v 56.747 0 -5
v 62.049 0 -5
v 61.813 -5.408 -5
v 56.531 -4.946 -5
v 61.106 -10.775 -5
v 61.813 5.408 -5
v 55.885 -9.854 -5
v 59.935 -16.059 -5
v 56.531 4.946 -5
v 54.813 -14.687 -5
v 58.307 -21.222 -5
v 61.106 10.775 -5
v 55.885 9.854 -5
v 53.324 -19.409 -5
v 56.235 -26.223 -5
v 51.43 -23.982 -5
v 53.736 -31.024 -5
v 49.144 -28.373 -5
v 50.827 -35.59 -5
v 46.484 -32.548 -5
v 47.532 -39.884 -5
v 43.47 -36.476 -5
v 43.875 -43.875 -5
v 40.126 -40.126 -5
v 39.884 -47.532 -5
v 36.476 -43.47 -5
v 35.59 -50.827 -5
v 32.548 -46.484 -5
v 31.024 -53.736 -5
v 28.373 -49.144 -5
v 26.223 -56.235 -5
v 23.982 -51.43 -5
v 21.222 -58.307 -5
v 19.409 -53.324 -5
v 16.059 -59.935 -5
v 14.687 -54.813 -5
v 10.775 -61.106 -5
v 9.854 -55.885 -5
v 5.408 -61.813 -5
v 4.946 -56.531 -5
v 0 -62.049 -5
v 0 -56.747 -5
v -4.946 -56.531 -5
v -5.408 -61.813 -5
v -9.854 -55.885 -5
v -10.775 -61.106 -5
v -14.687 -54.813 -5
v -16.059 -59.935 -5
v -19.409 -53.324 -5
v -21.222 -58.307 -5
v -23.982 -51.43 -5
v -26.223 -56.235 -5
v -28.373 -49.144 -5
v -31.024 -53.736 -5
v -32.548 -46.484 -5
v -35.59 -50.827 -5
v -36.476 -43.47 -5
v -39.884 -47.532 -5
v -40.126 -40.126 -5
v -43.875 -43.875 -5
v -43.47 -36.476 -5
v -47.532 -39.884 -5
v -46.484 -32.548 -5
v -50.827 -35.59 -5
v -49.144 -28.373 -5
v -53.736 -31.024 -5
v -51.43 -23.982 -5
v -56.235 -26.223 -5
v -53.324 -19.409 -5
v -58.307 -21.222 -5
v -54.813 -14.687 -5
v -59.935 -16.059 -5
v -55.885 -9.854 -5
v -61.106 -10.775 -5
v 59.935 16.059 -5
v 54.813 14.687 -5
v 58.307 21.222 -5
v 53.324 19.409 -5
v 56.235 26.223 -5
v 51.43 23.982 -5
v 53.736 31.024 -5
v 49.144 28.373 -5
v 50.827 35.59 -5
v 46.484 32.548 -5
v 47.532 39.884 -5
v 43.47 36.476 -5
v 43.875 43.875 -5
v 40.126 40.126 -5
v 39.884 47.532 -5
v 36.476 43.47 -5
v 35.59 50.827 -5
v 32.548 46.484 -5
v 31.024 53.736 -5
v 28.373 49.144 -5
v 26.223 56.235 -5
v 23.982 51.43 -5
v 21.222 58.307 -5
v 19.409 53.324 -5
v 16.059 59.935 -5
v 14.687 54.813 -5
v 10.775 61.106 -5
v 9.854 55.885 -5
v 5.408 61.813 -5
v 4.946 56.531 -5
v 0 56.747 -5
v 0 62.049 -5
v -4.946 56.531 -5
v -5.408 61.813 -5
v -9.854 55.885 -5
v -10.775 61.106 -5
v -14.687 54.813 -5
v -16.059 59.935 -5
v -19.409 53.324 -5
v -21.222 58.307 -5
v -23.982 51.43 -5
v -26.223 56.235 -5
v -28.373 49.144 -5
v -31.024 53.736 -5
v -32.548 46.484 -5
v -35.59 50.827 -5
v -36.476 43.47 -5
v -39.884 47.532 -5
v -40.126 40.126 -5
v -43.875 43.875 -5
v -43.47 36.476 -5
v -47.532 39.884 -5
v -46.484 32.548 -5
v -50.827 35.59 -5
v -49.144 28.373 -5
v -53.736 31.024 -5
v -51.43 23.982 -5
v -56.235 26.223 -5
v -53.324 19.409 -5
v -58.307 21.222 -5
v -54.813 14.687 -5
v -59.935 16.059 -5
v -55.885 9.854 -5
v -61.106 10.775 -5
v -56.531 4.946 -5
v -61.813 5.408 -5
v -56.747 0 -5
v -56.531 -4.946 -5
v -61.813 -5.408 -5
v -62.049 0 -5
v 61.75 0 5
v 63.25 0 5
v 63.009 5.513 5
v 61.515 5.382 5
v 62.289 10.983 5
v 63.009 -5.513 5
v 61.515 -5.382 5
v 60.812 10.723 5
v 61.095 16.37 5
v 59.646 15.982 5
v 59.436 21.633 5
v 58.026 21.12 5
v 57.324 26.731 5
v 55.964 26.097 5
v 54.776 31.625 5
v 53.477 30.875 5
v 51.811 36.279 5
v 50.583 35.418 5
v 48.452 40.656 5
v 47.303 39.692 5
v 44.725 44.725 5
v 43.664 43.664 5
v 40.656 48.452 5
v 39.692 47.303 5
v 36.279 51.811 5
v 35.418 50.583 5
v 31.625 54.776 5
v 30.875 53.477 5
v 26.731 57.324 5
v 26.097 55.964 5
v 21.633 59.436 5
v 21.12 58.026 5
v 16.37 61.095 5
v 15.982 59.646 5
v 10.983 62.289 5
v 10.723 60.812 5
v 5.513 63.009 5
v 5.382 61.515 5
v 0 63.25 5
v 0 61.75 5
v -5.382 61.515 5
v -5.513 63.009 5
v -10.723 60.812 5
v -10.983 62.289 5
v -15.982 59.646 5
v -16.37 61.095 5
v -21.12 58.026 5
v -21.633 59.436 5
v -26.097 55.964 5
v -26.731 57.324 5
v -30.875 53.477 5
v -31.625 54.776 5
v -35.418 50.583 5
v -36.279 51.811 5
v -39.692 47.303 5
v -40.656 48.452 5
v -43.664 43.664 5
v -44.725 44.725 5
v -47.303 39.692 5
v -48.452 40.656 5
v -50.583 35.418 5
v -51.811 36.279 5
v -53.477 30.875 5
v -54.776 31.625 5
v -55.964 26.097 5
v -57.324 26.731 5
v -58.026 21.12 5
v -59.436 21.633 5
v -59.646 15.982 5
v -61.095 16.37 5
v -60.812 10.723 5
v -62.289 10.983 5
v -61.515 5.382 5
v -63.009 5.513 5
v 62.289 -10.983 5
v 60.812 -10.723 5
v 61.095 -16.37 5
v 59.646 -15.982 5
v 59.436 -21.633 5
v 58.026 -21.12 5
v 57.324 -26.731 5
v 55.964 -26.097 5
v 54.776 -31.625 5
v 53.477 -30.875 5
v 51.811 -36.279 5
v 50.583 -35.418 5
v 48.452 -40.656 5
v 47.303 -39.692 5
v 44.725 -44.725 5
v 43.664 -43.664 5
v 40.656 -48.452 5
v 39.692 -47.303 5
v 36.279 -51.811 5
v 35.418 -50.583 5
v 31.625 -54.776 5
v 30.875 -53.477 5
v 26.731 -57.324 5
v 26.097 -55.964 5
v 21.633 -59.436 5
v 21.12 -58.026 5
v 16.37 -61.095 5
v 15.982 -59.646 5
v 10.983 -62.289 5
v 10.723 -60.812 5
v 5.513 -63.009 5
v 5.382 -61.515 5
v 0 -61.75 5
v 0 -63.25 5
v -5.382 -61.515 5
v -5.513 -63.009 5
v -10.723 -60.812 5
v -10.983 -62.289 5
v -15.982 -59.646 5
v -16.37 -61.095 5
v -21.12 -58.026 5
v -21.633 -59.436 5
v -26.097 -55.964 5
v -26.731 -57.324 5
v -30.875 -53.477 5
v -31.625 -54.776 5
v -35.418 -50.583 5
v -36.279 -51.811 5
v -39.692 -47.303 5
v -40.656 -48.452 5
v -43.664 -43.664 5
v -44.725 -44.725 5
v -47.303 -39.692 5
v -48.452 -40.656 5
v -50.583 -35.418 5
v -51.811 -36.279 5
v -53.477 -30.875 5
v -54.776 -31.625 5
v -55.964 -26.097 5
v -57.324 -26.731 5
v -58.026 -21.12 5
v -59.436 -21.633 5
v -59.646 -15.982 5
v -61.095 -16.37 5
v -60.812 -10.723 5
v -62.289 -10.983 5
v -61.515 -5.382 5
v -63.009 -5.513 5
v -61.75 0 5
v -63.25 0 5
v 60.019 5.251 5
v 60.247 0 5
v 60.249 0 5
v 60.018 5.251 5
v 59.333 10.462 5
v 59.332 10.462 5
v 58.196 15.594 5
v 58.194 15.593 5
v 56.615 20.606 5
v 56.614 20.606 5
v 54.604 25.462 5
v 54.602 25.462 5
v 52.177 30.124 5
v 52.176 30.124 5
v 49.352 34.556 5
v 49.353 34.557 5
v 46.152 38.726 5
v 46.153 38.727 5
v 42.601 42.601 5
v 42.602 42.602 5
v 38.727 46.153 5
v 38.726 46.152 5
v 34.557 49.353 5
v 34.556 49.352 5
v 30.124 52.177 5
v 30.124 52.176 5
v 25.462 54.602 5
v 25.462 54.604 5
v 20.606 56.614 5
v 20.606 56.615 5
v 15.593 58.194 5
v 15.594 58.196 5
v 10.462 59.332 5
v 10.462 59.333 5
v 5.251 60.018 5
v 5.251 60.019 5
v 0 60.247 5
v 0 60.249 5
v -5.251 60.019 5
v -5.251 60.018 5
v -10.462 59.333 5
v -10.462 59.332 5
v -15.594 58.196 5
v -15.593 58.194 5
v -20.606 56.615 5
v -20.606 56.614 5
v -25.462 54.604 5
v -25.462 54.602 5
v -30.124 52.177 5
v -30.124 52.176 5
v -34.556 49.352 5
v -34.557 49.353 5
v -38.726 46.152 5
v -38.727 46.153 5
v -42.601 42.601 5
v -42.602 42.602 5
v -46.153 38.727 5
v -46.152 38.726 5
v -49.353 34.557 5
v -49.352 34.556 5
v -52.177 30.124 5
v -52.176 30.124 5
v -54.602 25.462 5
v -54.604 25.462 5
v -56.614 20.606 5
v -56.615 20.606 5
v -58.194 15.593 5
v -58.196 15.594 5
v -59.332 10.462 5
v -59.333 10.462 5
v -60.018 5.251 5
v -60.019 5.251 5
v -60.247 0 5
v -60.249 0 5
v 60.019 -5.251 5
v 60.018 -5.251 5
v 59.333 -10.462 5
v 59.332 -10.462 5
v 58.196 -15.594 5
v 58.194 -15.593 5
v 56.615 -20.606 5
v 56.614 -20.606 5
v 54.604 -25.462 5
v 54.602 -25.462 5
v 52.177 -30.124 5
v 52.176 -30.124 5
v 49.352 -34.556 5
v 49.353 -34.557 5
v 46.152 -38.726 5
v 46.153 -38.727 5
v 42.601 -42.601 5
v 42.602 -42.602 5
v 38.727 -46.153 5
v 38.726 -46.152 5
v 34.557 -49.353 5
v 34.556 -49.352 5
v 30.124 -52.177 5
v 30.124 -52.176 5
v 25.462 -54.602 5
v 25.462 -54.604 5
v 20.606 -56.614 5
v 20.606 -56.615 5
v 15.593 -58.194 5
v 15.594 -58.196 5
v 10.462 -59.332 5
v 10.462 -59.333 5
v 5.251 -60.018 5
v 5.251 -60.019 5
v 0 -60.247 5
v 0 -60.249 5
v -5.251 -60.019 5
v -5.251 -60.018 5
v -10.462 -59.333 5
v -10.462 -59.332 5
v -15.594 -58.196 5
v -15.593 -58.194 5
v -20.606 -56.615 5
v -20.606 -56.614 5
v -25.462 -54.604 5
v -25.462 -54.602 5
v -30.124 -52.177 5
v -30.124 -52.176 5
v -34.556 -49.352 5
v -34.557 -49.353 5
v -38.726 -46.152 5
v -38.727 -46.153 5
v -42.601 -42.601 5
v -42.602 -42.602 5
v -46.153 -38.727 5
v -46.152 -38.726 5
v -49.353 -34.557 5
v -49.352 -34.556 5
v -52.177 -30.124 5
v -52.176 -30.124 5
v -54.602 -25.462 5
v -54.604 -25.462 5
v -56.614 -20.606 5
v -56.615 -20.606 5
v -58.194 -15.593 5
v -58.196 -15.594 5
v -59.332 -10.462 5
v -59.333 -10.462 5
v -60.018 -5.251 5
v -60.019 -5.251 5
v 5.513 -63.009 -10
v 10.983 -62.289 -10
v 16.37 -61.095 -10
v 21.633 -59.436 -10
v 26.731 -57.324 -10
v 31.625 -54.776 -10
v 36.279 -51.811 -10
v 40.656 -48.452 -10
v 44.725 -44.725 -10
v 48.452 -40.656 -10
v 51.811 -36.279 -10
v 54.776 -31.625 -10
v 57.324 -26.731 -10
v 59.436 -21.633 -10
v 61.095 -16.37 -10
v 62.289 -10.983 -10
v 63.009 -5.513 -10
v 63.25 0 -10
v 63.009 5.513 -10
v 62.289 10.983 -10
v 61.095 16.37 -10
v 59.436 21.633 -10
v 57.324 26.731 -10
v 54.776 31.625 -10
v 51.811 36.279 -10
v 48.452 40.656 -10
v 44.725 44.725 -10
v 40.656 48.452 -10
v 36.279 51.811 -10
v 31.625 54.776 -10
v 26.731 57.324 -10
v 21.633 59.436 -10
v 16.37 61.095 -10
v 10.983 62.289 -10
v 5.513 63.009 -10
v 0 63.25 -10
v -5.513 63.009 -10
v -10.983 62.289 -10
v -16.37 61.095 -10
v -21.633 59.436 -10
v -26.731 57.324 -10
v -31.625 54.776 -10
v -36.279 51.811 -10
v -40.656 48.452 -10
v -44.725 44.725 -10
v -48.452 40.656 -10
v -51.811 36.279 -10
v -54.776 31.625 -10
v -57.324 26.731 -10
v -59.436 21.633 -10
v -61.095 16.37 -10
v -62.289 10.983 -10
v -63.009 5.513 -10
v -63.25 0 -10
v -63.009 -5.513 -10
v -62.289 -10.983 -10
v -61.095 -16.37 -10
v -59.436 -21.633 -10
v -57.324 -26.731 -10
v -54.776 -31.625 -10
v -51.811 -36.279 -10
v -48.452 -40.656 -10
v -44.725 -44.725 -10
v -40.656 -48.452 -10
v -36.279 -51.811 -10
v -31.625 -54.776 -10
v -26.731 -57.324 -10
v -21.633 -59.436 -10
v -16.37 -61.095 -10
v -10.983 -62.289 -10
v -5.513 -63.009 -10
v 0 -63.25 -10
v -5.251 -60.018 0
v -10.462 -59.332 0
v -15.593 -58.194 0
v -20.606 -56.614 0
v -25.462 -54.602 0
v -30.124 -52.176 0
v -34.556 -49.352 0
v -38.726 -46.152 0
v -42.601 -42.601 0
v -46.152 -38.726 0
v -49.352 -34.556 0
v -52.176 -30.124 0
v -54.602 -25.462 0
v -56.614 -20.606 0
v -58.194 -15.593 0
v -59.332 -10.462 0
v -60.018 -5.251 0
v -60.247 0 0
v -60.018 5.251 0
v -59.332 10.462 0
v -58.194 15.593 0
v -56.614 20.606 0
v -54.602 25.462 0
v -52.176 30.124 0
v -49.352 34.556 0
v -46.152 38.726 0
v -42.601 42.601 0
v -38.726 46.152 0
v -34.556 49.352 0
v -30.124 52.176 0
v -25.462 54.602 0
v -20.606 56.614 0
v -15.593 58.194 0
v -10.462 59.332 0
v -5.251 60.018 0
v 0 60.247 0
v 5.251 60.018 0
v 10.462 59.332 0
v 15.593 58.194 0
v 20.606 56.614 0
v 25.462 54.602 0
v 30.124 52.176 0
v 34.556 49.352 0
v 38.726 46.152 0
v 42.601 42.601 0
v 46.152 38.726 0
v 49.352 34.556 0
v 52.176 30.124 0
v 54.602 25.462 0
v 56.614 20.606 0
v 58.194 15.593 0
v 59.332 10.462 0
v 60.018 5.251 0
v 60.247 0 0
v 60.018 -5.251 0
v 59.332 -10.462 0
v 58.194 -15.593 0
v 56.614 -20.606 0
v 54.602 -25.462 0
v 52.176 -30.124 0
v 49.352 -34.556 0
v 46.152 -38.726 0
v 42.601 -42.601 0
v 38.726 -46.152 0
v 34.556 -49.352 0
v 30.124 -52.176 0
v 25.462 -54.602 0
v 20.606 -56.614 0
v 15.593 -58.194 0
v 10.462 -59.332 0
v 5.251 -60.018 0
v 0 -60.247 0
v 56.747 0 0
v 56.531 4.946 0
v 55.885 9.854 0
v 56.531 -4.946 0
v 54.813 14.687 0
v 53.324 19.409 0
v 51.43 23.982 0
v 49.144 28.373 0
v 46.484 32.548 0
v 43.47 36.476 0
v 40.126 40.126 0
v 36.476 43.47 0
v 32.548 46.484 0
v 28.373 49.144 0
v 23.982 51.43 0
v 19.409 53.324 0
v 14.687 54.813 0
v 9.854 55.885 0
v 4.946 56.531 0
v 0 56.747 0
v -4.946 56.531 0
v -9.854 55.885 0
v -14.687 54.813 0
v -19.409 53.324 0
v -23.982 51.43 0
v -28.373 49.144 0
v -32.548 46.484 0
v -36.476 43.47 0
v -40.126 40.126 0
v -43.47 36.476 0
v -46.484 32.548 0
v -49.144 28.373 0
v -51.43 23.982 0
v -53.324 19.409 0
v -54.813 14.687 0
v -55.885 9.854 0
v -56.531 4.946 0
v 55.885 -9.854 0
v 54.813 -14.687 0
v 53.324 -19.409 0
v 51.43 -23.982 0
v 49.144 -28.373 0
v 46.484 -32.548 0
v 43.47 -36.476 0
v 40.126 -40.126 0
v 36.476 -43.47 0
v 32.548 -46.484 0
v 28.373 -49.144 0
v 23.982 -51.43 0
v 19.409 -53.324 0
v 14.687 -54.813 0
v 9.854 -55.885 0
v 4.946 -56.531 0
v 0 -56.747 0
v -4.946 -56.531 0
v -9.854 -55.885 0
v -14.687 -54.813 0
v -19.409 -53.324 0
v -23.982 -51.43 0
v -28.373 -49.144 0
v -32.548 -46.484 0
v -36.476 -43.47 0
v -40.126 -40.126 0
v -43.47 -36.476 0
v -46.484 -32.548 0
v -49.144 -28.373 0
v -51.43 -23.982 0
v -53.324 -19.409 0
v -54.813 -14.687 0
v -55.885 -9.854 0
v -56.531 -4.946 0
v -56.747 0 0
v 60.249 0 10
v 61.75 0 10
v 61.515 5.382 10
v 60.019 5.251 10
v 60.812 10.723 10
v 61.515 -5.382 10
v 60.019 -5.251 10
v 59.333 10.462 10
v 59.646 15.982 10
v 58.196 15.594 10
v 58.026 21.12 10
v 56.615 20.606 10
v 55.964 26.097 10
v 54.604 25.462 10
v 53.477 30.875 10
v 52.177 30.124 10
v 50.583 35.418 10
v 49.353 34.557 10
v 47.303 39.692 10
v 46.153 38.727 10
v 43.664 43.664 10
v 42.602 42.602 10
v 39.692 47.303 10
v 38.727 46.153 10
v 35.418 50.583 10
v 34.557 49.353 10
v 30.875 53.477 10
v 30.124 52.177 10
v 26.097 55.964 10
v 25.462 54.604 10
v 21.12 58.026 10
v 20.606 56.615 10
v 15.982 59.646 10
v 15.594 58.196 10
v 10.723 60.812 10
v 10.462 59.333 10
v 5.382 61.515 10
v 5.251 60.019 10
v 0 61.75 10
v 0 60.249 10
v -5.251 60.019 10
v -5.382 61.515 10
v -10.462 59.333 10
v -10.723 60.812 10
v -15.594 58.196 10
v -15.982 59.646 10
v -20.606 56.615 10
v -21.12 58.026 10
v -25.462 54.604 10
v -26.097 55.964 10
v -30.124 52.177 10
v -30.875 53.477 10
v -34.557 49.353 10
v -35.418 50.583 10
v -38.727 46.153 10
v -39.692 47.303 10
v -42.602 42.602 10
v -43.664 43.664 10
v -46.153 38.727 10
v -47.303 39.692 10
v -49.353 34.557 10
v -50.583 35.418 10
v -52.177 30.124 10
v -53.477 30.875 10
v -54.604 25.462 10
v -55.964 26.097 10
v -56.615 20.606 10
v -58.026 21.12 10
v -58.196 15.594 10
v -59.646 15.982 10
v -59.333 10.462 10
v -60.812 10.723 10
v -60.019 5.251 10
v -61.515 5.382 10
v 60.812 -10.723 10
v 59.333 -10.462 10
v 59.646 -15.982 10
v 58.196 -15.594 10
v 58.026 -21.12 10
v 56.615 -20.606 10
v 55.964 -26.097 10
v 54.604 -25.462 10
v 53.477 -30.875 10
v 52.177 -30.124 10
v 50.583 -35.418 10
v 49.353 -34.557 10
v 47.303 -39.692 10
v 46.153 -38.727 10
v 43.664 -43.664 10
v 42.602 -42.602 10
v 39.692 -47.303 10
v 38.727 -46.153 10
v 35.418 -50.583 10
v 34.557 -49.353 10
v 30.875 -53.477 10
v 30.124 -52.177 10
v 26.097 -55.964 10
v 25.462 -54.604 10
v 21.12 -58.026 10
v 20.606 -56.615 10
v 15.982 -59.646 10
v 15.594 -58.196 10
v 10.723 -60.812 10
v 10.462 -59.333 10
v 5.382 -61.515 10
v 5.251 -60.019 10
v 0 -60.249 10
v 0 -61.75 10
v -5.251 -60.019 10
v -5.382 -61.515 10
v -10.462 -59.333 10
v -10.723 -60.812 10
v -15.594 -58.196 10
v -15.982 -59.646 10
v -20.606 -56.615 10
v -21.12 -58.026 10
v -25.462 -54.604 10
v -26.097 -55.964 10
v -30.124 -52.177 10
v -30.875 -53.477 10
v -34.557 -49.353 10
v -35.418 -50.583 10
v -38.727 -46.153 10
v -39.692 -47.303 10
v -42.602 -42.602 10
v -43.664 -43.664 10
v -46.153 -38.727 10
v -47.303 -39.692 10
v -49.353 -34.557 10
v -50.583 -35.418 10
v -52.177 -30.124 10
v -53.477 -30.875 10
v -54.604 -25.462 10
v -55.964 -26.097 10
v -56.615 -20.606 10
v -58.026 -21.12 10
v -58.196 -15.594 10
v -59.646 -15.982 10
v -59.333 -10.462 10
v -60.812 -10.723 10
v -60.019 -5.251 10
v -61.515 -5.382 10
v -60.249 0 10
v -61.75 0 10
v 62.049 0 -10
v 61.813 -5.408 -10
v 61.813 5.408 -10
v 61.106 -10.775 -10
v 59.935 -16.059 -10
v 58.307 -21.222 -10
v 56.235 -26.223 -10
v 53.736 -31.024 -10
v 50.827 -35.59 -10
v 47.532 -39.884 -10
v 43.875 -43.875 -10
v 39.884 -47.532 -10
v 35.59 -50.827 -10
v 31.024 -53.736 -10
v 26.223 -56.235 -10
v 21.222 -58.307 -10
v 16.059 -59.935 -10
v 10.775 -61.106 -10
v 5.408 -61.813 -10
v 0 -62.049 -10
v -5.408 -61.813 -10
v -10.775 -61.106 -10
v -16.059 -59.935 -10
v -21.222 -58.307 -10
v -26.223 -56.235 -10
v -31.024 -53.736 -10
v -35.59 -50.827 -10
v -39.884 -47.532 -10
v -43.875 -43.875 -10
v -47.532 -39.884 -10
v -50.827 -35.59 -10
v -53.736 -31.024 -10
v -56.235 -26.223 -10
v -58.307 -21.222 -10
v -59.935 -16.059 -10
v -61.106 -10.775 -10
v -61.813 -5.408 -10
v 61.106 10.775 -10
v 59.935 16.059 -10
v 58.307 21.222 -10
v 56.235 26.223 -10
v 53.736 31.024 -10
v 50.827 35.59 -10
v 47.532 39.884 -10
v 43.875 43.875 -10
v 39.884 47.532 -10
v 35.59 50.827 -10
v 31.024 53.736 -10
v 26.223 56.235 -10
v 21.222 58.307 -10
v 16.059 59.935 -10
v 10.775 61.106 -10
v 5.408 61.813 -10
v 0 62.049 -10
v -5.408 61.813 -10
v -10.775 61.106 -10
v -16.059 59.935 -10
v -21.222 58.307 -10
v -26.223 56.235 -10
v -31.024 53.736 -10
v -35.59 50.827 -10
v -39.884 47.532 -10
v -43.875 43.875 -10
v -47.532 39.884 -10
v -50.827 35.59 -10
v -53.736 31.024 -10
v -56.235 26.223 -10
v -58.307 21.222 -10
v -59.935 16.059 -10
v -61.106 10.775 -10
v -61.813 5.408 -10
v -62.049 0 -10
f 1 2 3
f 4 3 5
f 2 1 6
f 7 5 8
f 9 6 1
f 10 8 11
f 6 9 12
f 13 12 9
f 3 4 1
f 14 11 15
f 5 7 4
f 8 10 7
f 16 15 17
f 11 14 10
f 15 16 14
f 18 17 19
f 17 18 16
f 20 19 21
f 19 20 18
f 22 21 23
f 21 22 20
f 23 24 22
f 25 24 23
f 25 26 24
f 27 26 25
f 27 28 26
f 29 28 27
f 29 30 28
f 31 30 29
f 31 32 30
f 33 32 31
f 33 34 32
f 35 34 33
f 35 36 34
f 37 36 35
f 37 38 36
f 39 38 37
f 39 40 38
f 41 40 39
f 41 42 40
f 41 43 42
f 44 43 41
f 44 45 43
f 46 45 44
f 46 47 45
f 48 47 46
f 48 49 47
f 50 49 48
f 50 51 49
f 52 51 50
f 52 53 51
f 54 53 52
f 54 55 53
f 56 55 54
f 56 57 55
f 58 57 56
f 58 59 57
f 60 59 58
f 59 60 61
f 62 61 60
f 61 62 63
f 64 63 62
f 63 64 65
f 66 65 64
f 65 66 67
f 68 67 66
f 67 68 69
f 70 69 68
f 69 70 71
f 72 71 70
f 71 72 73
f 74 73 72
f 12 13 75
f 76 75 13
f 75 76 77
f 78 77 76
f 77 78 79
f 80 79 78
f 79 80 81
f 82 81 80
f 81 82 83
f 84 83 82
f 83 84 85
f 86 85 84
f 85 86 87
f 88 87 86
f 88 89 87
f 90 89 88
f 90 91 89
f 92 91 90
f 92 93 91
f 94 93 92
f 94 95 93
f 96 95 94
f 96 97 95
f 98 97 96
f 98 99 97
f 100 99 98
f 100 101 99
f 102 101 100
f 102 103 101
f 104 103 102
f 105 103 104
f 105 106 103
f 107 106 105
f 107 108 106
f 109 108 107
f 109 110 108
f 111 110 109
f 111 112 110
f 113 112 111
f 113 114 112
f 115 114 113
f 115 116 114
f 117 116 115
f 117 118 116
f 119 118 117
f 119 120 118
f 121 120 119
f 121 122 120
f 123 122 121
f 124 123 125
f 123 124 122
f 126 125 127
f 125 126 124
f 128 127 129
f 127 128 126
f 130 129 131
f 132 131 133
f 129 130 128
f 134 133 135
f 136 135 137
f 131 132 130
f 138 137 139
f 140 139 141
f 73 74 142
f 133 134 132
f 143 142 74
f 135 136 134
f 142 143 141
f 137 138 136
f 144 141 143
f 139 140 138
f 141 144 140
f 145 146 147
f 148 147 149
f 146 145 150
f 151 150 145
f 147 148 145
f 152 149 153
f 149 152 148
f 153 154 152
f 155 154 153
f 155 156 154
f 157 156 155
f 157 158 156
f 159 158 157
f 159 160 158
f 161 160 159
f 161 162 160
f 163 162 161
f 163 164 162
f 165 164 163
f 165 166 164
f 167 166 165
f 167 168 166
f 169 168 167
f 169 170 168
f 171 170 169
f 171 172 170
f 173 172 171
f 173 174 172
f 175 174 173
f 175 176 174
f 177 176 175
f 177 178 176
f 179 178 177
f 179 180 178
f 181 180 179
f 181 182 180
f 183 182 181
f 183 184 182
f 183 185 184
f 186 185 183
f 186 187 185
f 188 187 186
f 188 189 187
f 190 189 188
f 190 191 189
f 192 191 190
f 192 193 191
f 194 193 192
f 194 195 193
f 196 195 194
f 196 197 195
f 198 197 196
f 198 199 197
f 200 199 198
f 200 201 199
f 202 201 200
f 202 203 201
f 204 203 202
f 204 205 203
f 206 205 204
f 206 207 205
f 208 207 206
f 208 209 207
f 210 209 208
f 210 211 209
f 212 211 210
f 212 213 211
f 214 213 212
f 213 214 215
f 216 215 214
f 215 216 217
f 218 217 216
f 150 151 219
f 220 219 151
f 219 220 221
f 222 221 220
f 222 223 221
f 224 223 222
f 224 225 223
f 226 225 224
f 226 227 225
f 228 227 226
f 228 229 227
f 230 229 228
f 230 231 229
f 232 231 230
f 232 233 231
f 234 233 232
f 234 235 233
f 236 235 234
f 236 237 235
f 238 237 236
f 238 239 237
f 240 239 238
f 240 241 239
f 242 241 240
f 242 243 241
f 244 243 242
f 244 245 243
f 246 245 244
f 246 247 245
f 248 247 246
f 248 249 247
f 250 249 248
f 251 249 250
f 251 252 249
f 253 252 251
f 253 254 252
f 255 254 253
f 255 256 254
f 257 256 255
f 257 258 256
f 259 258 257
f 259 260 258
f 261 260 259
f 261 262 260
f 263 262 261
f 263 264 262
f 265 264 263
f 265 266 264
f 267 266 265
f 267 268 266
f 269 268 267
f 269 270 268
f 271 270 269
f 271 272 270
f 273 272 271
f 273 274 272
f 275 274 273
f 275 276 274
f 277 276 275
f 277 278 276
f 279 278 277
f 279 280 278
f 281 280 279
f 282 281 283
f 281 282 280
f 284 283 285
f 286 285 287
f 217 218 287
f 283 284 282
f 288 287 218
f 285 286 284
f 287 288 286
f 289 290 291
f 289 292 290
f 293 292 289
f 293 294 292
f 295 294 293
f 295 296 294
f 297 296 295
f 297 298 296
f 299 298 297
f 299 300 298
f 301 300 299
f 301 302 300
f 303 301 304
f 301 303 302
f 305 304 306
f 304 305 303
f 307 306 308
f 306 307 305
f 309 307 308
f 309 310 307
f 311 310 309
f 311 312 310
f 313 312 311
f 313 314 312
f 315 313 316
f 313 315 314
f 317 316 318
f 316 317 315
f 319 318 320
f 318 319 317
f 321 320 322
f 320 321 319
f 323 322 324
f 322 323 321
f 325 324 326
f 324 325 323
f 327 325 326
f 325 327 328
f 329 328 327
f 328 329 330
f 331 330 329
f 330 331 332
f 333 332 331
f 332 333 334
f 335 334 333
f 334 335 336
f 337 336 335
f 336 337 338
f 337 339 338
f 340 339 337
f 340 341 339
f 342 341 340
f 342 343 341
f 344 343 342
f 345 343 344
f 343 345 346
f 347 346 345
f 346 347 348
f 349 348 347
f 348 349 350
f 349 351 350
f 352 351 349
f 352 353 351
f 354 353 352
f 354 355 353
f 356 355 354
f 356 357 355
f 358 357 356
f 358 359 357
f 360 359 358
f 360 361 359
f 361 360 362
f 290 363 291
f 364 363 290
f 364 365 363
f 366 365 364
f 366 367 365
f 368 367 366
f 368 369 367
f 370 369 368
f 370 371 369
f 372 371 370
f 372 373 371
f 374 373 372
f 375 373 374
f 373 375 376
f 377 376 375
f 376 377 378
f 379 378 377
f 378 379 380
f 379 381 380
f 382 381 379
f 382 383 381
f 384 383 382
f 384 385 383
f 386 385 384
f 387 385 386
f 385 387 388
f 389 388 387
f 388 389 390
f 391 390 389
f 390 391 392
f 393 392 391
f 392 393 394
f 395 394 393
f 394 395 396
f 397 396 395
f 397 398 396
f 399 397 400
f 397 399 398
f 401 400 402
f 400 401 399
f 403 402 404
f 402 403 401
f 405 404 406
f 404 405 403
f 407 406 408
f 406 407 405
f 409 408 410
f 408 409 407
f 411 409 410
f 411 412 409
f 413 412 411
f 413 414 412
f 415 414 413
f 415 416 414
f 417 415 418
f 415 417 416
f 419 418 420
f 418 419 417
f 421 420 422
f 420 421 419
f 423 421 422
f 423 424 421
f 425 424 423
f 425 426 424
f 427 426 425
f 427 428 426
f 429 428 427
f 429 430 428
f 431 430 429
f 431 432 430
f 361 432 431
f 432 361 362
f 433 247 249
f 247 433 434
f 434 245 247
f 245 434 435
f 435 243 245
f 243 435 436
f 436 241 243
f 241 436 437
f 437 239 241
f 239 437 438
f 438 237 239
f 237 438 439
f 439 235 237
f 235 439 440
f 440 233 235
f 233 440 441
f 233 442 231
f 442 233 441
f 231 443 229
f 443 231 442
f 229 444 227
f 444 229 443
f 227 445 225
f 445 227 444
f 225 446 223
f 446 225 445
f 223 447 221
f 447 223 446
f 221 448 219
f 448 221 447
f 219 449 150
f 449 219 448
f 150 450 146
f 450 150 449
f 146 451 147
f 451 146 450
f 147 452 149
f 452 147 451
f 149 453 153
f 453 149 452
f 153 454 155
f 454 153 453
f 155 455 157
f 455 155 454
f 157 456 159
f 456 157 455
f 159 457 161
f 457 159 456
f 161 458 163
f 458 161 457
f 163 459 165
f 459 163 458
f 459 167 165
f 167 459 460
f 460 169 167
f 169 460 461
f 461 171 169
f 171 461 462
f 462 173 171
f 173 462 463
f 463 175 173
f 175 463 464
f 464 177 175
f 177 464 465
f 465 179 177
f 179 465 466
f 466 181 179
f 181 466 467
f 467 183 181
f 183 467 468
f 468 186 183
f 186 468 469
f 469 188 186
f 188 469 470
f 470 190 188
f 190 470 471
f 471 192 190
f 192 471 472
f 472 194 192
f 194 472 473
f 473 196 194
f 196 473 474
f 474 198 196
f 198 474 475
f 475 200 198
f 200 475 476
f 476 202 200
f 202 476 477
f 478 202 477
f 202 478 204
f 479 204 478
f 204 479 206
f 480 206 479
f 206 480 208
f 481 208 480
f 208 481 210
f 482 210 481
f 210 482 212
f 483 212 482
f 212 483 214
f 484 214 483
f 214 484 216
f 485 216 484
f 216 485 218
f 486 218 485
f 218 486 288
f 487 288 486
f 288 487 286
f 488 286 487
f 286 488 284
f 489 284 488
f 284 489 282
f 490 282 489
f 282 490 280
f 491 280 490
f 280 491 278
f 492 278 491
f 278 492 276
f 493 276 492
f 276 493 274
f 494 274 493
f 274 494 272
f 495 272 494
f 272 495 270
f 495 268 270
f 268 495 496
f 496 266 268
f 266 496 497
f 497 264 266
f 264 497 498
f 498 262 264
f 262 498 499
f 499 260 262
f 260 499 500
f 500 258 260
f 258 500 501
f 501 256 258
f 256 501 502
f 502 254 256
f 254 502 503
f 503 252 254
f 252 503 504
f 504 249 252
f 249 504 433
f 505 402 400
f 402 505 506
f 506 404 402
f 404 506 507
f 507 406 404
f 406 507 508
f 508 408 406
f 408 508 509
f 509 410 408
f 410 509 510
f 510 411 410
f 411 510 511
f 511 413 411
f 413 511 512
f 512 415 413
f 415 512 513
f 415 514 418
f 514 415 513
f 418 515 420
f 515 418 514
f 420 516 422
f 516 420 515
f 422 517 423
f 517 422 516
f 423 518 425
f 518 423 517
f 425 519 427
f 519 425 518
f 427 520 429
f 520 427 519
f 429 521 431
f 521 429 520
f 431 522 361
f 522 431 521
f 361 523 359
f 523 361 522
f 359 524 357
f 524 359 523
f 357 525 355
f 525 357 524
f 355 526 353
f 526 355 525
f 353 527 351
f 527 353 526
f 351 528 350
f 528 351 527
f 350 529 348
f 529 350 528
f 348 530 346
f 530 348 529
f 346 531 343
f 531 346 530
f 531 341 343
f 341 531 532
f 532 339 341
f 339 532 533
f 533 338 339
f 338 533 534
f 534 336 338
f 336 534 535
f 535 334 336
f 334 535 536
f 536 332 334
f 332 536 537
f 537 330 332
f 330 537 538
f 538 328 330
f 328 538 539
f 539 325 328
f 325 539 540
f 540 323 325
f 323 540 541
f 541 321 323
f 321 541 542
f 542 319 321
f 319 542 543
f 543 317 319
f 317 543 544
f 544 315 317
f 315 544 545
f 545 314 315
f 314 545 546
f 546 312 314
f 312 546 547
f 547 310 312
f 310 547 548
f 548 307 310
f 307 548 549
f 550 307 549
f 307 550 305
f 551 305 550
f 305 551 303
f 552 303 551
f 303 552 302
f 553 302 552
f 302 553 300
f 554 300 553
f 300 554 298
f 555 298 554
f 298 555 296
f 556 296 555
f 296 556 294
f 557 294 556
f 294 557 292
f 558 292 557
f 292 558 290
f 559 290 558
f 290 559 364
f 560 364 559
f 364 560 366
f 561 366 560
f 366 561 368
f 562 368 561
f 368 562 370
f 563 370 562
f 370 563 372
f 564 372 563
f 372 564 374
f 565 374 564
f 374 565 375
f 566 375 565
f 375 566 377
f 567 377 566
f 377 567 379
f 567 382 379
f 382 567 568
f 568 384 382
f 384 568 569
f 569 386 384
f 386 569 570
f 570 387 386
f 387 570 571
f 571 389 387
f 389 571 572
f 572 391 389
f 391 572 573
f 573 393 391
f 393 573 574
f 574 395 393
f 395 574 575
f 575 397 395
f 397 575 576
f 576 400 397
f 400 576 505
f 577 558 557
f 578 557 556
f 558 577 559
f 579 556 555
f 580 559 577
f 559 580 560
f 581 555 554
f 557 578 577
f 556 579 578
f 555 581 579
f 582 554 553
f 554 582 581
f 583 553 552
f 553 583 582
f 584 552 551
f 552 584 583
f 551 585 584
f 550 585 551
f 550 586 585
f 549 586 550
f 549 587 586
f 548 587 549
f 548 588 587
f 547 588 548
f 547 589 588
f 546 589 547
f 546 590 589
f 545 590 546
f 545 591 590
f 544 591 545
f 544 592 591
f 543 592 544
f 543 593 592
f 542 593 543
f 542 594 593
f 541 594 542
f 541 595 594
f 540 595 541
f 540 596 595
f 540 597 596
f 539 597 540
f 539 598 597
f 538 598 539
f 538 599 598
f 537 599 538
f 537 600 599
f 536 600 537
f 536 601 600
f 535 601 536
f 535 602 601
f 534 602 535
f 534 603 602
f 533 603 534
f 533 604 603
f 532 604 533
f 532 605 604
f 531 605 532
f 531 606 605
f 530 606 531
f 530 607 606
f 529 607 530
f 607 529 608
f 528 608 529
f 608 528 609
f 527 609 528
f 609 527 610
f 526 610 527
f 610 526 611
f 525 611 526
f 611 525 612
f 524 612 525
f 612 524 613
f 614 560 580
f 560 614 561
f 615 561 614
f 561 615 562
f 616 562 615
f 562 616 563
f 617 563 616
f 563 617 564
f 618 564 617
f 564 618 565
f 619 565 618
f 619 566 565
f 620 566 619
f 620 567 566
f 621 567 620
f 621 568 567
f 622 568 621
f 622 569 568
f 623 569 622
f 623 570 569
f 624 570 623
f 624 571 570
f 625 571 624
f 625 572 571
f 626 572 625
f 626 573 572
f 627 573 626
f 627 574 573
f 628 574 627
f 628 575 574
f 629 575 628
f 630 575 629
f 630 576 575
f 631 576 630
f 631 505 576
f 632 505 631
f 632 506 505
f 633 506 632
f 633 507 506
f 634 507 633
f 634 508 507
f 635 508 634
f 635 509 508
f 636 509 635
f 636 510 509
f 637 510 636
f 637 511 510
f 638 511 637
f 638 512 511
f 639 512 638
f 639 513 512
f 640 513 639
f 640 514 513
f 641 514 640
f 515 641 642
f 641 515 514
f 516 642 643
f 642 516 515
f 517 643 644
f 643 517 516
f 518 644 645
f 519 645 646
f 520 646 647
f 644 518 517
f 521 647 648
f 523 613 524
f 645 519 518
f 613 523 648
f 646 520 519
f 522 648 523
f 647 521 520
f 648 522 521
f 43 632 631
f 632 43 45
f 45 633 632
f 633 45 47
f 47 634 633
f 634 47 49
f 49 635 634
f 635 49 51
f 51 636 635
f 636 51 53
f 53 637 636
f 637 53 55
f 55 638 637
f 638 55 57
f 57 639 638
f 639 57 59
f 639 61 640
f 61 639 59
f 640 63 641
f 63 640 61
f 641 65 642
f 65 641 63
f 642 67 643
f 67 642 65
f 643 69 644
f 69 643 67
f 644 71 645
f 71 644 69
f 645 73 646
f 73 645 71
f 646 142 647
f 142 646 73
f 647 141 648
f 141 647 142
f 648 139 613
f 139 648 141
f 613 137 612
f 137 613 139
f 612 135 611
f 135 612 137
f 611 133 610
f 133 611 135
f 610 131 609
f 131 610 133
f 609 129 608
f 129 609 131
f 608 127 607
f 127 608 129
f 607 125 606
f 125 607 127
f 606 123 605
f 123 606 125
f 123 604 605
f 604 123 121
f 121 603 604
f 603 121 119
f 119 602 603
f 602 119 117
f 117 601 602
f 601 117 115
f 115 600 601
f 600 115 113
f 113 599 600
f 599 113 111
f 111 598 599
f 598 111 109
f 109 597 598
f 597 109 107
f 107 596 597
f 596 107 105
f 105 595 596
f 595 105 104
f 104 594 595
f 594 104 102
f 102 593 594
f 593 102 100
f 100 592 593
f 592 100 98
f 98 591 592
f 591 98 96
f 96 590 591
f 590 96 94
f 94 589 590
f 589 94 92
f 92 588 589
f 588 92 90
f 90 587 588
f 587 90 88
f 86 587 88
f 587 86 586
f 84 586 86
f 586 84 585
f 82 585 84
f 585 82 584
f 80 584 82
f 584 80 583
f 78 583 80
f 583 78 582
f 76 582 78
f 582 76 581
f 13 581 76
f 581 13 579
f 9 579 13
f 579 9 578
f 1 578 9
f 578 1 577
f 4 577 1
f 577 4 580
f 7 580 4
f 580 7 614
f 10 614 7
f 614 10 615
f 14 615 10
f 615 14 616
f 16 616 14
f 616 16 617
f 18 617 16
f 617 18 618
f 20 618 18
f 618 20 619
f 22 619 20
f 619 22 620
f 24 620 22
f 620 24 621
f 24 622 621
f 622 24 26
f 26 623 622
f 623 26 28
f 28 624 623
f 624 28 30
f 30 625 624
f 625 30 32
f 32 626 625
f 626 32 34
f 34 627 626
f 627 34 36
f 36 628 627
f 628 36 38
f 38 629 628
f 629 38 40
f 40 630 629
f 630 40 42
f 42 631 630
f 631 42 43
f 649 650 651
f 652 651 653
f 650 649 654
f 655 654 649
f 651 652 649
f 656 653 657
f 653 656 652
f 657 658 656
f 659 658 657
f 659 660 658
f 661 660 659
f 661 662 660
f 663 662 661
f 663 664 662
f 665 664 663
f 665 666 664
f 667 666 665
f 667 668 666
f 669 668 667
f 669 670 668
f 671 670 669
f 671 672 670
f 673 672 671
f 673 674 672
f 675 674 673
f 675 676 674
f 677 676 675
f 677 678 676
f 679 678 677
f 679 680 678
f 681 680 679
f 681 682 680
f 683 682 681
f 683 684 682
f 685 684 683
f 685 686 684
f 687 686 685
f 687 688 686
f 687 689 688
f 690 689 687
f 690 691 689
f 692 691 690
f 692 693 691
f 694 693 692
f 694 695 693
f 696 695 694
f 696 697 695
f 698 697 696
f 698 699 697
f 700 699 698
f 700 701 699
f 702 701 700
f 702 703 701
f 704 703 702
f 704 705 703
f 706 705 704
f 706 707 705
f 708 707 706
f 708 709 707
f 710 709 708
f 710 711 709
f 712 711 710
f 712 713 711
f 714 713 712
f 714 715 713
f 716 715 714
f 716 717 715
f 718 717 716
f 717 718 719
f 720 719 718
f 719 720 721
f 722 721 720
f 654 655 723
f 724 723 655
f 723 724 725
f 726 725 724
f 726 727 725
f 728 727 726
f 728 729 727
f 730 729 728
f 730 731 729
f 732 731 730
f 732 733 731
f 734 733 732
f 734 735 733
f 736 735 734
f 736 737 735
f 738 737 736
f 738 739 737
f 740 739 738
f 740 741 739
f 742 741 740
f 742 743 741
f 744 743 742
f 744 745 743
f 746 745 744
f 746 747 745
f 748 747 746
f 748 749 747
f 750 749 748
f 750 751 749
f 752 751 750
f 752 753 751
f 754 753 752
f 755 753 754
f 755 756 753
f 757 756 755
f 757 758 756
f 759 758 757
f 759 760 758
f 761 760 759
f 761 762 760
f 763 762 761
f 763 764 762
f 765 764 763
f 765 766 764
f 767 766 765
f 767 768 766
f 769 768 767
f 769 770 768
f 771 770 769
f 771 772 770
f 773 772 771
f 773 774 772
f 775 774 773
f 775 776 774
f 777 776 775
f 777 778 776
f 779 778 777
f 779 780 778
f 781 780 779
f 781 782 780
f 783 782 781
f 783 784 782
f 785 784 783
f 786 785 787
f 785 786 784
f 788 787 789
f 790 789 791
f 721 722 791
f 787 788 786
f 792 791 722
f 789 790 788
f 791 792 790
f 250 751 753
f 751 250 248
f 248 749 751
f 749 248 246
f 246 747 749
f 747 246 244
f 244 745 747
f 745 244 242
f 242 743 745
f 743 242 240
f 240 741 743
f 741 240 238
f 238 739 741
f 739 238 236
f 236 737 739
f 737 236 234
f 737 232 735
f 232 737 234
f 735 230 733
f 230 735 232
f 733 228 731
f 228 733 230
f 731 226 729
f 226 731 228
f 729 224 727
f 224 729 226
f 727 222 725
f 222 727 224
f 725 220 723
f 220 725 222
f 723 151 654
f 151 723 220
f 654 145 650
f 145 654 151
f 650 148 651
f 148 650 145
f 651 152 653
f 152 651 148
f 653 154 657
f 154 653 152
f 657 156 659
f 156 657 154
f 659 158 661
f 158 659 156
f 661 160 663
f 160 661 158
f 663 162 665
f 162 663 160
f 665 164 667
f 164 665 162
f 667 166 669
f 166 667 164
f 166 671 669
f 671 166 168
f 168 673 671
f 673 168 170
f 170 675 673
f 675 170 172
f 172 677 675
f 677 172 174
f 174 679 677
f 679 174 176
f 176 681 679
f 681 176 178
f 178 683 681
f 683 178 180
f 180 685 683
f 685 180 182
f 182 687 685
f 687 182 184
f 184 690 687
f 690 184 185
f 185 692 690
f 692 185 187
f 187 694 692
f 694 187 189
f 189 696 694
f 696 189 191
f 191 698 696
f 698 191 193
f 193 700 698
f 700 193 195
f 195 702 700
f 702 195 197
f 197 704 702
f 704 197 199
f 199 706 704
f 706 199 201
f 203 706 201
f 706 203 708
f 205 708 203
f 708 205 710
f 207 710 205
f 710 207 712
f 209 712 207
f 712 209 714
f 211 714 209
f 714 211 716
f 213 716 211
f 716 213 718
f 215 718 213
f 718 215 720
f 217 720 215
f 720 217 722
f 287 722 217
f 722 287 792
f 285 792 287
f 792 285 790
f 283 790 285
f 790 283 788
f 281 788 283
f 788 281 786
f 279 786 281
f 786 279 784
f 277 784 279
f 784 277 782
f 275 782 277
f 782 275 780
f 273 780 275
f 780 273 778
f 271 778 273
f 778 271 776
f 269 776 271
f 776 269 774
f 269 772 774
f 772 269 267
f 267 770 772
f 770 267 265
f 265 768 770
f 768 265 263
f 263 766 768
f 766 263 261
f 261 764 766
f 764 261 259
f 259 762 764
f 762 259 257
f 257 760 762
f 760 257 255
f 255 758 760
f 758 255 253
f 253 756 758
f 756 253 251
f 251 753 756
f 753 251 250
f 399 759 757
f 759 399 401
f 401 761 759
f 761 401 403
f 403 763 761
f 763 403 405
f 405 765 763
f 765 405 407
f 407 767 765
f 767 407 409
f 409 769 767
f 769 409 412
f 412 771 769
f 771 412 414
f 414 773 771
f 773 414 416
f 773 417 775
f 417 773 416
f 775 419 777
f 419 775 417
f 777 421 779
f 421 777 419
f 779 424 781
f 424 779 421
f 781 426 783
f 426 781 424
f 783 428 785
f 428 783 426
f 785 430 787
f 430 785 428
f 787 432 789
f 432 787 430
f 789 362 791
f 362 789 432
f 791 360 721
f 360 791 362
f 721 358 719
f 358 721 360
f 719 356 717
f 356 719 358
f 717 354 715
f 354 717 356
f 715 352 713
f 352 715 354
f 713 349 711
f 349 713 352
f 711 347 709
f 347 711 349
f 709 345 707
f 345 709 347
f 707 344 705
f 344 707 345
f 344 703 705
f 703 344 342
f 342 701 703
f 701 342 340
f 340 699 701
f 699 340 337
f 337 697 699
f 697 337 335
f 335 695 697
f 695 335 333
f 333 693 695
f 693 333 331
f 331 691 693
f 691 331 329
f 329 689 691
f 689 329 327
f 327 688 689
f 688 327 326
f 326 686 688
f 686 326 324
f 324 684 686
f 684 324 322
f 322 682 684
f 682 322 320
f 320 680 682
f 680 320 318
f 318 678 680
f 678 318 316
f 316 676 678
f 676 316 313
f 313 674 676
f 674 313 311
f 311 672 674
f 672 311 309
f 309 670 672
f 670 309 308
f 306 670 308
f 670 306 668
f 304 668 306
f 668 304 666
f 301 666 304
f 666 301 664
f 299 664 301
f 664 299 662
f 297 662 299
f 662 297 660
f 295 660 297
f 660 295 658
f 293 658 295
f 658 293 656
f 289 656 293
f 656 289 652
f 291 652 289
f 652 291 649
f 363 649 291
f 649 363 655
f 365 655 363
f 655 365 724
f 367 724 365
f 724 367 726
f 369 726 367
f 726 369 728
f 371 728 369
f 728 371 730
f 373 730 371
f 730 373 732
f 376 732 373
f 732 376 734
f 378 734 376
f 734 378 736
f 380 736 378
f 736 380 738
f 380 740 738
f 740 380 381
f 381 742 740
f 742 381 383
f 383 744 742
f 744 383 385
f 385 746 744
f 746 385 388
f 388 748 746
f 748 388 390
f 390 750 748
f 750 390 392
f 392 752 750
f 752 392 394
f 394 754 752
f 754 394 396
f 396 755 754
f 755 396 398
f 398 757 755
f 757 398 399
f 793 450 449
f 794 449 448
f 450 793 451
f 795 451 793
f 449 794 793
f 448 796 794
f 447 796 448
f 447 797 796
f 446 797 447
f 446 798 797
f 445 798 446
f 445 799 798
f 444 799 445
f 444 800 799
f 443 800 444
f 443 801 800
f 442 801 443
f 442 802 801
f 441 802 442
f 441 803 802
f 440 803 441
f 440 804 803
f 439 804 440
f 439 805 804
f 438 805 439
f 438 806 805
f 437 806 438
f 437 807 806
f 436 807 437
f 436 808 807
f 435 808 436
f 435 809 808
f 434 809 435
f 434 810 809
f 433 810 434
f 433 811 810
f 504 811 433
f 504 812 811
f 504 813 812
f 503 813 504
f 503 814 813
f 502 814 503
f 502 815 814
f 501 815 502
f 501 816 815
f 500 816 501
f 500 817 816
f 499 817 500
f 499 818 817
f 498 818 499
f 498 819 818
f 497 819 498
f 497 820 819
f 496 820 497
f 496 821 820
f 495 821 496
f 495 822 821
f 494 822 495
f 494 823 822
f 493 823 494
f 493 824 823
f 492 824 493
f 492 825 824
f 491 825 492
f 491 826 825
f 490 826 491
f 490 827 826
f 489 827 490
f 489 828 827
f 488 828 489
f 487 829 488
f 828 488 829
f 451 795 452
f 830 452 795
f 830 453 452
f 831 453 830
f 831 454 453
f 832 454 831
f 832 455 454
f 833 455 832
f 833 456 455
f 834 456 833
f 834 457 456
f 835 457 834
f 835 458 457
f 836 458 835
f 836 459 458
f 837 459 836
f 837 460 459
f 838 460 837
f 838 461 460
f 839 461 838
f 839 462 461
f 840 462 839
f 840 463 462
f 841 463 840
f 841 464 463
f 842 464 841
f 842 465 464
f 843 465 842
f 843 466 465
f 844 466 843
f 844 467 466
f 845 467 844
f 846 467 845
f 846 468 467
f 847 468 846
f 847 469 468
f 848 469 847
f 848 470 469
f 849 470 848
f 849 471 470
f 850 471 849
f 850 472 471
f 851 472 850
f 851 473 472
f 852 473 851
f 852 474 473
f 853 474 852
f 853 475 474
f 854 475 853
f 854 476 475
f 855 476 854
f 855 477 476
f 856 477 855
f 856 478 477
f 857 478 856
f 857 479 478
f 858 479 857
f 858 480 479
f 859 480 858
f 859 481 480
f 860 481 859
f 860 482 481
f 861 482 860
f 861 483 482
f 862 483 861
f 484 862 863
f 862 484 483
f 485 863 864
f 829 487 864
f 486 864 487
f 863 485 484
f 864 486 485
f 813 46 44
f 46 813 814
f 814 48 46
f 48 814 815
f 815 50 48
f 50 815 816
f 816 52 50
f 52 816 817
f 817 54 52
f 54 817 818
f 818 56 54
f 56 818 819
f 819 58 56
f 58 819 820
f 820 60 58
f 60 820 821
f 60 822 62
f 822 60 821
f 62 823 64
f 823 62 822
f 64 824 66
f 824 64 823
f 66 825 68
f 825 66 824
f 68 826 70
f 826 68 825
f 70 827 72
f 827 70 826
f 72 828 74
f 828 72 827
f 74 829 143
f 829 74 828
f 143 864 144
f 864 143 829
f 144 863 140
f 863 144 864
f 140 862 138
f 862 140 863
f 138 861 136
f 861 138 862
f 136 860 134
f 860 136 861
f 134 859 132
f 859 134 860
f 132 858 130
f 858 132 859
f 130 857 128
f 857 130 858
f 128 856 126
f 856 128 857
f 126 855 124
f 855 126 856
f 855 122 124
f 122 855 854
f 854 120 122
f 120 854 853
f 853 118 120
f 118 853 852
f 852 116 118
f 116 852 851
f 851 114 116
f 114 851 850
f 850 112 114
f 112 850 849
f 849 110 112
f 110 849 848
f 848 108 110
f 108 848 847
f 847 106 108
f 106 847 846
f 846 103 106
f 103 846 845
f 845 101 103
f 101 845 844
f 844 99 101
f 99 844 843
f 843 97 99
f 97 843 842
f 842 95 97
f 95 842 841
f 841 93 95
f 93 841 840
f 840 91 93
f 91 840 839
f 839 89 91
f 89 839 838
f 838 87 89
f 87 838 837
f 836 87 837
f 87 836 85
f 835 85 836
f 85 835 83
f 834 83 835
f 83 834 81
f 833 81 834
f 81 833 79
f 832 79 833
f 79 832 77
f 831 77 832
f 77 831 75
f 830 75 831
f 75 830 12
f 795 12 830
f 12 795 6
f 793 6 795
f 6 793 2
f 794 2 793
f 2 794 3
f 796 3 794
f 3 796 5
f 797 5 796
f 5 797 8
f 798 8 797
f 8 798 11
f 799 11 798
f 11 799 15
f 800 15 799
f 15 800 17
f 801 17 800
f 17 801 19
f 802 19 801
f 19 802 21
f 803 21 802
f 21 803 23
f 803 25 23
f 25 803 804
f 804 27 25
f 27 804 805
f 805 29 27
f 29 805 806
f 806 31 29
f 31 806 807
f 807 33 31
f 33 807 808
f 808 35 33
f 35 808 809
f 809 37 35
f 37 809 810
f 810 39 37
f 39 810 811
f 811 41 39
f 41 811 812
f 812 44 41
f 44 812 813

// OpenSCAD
// file: ../screw_sorter.scad
use <lib/sieve.scad>;

/* [General] */

// Outer diameter of the
outer_diameter = 120; //[5.0:.1:250.0]

// Width of the filter wires generally keep this greater than your nozzle diameter
strand_width = .8; //[.10:.01:10.00]

// Thickness (height) of the filter wires. If 'Offset strands' is enabled, the filter grid will be twice this thick.
strand_height = .8; //[.10:.01:5]

// Spacing between filter wires, i.e. hole size.
gap_size = 1; //[.10:.01:10.00]

// Thickness (width) of the outer rim (will increase with height if taper > 1).
rim_thickness = 3; //[.3:.01:5]

// Total height of the outer rim.
rim_height = 5; //[0:.1:50]

// Taper of the tube: scale factor of top versus bottom contour.
taper = 1; //[1:0.01:3]

// If true, wires are placed in layers for faster, better prints with thin strands.
offset_strands = true;

// Define the allowance to achieve the desired diameter clearance between the sieve and the holder
holder_insert_allowance = 0.5;

// Define the allowance to achieve the desired diameter clearance between the holder and it's female cut
holder_dia_allowance = 0.3;

// Number of segments for round shape, low values can be used to obtain polygons that fit inside a circle of the
// specified outer diameter. For instance, 3 yields a triangle.
$fn = 72; //[3:1:256]

/* [Render Control] */

render = "sieve"; // [sieve,holder,all]

/* [Hidden] */

shift_abs = gap_size + strand_width;

if (render == "sieve" || render == "all")
    color("green") sieve(
            od_x=outer_diameter, od_y=outer_diameter, strand_width=strand_width,
            strand_thick=strand_height, gap=gap_size, rim_thick=rim_thickness, rim_h=rim_height,
            taper_scale=taper, do_offset=offset_strands, sh_x=shift_abs, sh_y=shift_abs
        );

if (render == "holder" || render == "all")
    color("blue") stackable_sieve_holder(
            od_x=outer_diameter, od_y=outer_diameter, rim_thick=rim_thickness,
            rim_h=rim_height, insert_allowance=holder_insert_allowance,
            holder_rim_allowance=holder_dia_allowance, taper_scale=taper
        );
// main file
// The holder ring that one sieve tray sits in, and the next stacks on.
include <../screw_sorter.scad>

render = "holder";
